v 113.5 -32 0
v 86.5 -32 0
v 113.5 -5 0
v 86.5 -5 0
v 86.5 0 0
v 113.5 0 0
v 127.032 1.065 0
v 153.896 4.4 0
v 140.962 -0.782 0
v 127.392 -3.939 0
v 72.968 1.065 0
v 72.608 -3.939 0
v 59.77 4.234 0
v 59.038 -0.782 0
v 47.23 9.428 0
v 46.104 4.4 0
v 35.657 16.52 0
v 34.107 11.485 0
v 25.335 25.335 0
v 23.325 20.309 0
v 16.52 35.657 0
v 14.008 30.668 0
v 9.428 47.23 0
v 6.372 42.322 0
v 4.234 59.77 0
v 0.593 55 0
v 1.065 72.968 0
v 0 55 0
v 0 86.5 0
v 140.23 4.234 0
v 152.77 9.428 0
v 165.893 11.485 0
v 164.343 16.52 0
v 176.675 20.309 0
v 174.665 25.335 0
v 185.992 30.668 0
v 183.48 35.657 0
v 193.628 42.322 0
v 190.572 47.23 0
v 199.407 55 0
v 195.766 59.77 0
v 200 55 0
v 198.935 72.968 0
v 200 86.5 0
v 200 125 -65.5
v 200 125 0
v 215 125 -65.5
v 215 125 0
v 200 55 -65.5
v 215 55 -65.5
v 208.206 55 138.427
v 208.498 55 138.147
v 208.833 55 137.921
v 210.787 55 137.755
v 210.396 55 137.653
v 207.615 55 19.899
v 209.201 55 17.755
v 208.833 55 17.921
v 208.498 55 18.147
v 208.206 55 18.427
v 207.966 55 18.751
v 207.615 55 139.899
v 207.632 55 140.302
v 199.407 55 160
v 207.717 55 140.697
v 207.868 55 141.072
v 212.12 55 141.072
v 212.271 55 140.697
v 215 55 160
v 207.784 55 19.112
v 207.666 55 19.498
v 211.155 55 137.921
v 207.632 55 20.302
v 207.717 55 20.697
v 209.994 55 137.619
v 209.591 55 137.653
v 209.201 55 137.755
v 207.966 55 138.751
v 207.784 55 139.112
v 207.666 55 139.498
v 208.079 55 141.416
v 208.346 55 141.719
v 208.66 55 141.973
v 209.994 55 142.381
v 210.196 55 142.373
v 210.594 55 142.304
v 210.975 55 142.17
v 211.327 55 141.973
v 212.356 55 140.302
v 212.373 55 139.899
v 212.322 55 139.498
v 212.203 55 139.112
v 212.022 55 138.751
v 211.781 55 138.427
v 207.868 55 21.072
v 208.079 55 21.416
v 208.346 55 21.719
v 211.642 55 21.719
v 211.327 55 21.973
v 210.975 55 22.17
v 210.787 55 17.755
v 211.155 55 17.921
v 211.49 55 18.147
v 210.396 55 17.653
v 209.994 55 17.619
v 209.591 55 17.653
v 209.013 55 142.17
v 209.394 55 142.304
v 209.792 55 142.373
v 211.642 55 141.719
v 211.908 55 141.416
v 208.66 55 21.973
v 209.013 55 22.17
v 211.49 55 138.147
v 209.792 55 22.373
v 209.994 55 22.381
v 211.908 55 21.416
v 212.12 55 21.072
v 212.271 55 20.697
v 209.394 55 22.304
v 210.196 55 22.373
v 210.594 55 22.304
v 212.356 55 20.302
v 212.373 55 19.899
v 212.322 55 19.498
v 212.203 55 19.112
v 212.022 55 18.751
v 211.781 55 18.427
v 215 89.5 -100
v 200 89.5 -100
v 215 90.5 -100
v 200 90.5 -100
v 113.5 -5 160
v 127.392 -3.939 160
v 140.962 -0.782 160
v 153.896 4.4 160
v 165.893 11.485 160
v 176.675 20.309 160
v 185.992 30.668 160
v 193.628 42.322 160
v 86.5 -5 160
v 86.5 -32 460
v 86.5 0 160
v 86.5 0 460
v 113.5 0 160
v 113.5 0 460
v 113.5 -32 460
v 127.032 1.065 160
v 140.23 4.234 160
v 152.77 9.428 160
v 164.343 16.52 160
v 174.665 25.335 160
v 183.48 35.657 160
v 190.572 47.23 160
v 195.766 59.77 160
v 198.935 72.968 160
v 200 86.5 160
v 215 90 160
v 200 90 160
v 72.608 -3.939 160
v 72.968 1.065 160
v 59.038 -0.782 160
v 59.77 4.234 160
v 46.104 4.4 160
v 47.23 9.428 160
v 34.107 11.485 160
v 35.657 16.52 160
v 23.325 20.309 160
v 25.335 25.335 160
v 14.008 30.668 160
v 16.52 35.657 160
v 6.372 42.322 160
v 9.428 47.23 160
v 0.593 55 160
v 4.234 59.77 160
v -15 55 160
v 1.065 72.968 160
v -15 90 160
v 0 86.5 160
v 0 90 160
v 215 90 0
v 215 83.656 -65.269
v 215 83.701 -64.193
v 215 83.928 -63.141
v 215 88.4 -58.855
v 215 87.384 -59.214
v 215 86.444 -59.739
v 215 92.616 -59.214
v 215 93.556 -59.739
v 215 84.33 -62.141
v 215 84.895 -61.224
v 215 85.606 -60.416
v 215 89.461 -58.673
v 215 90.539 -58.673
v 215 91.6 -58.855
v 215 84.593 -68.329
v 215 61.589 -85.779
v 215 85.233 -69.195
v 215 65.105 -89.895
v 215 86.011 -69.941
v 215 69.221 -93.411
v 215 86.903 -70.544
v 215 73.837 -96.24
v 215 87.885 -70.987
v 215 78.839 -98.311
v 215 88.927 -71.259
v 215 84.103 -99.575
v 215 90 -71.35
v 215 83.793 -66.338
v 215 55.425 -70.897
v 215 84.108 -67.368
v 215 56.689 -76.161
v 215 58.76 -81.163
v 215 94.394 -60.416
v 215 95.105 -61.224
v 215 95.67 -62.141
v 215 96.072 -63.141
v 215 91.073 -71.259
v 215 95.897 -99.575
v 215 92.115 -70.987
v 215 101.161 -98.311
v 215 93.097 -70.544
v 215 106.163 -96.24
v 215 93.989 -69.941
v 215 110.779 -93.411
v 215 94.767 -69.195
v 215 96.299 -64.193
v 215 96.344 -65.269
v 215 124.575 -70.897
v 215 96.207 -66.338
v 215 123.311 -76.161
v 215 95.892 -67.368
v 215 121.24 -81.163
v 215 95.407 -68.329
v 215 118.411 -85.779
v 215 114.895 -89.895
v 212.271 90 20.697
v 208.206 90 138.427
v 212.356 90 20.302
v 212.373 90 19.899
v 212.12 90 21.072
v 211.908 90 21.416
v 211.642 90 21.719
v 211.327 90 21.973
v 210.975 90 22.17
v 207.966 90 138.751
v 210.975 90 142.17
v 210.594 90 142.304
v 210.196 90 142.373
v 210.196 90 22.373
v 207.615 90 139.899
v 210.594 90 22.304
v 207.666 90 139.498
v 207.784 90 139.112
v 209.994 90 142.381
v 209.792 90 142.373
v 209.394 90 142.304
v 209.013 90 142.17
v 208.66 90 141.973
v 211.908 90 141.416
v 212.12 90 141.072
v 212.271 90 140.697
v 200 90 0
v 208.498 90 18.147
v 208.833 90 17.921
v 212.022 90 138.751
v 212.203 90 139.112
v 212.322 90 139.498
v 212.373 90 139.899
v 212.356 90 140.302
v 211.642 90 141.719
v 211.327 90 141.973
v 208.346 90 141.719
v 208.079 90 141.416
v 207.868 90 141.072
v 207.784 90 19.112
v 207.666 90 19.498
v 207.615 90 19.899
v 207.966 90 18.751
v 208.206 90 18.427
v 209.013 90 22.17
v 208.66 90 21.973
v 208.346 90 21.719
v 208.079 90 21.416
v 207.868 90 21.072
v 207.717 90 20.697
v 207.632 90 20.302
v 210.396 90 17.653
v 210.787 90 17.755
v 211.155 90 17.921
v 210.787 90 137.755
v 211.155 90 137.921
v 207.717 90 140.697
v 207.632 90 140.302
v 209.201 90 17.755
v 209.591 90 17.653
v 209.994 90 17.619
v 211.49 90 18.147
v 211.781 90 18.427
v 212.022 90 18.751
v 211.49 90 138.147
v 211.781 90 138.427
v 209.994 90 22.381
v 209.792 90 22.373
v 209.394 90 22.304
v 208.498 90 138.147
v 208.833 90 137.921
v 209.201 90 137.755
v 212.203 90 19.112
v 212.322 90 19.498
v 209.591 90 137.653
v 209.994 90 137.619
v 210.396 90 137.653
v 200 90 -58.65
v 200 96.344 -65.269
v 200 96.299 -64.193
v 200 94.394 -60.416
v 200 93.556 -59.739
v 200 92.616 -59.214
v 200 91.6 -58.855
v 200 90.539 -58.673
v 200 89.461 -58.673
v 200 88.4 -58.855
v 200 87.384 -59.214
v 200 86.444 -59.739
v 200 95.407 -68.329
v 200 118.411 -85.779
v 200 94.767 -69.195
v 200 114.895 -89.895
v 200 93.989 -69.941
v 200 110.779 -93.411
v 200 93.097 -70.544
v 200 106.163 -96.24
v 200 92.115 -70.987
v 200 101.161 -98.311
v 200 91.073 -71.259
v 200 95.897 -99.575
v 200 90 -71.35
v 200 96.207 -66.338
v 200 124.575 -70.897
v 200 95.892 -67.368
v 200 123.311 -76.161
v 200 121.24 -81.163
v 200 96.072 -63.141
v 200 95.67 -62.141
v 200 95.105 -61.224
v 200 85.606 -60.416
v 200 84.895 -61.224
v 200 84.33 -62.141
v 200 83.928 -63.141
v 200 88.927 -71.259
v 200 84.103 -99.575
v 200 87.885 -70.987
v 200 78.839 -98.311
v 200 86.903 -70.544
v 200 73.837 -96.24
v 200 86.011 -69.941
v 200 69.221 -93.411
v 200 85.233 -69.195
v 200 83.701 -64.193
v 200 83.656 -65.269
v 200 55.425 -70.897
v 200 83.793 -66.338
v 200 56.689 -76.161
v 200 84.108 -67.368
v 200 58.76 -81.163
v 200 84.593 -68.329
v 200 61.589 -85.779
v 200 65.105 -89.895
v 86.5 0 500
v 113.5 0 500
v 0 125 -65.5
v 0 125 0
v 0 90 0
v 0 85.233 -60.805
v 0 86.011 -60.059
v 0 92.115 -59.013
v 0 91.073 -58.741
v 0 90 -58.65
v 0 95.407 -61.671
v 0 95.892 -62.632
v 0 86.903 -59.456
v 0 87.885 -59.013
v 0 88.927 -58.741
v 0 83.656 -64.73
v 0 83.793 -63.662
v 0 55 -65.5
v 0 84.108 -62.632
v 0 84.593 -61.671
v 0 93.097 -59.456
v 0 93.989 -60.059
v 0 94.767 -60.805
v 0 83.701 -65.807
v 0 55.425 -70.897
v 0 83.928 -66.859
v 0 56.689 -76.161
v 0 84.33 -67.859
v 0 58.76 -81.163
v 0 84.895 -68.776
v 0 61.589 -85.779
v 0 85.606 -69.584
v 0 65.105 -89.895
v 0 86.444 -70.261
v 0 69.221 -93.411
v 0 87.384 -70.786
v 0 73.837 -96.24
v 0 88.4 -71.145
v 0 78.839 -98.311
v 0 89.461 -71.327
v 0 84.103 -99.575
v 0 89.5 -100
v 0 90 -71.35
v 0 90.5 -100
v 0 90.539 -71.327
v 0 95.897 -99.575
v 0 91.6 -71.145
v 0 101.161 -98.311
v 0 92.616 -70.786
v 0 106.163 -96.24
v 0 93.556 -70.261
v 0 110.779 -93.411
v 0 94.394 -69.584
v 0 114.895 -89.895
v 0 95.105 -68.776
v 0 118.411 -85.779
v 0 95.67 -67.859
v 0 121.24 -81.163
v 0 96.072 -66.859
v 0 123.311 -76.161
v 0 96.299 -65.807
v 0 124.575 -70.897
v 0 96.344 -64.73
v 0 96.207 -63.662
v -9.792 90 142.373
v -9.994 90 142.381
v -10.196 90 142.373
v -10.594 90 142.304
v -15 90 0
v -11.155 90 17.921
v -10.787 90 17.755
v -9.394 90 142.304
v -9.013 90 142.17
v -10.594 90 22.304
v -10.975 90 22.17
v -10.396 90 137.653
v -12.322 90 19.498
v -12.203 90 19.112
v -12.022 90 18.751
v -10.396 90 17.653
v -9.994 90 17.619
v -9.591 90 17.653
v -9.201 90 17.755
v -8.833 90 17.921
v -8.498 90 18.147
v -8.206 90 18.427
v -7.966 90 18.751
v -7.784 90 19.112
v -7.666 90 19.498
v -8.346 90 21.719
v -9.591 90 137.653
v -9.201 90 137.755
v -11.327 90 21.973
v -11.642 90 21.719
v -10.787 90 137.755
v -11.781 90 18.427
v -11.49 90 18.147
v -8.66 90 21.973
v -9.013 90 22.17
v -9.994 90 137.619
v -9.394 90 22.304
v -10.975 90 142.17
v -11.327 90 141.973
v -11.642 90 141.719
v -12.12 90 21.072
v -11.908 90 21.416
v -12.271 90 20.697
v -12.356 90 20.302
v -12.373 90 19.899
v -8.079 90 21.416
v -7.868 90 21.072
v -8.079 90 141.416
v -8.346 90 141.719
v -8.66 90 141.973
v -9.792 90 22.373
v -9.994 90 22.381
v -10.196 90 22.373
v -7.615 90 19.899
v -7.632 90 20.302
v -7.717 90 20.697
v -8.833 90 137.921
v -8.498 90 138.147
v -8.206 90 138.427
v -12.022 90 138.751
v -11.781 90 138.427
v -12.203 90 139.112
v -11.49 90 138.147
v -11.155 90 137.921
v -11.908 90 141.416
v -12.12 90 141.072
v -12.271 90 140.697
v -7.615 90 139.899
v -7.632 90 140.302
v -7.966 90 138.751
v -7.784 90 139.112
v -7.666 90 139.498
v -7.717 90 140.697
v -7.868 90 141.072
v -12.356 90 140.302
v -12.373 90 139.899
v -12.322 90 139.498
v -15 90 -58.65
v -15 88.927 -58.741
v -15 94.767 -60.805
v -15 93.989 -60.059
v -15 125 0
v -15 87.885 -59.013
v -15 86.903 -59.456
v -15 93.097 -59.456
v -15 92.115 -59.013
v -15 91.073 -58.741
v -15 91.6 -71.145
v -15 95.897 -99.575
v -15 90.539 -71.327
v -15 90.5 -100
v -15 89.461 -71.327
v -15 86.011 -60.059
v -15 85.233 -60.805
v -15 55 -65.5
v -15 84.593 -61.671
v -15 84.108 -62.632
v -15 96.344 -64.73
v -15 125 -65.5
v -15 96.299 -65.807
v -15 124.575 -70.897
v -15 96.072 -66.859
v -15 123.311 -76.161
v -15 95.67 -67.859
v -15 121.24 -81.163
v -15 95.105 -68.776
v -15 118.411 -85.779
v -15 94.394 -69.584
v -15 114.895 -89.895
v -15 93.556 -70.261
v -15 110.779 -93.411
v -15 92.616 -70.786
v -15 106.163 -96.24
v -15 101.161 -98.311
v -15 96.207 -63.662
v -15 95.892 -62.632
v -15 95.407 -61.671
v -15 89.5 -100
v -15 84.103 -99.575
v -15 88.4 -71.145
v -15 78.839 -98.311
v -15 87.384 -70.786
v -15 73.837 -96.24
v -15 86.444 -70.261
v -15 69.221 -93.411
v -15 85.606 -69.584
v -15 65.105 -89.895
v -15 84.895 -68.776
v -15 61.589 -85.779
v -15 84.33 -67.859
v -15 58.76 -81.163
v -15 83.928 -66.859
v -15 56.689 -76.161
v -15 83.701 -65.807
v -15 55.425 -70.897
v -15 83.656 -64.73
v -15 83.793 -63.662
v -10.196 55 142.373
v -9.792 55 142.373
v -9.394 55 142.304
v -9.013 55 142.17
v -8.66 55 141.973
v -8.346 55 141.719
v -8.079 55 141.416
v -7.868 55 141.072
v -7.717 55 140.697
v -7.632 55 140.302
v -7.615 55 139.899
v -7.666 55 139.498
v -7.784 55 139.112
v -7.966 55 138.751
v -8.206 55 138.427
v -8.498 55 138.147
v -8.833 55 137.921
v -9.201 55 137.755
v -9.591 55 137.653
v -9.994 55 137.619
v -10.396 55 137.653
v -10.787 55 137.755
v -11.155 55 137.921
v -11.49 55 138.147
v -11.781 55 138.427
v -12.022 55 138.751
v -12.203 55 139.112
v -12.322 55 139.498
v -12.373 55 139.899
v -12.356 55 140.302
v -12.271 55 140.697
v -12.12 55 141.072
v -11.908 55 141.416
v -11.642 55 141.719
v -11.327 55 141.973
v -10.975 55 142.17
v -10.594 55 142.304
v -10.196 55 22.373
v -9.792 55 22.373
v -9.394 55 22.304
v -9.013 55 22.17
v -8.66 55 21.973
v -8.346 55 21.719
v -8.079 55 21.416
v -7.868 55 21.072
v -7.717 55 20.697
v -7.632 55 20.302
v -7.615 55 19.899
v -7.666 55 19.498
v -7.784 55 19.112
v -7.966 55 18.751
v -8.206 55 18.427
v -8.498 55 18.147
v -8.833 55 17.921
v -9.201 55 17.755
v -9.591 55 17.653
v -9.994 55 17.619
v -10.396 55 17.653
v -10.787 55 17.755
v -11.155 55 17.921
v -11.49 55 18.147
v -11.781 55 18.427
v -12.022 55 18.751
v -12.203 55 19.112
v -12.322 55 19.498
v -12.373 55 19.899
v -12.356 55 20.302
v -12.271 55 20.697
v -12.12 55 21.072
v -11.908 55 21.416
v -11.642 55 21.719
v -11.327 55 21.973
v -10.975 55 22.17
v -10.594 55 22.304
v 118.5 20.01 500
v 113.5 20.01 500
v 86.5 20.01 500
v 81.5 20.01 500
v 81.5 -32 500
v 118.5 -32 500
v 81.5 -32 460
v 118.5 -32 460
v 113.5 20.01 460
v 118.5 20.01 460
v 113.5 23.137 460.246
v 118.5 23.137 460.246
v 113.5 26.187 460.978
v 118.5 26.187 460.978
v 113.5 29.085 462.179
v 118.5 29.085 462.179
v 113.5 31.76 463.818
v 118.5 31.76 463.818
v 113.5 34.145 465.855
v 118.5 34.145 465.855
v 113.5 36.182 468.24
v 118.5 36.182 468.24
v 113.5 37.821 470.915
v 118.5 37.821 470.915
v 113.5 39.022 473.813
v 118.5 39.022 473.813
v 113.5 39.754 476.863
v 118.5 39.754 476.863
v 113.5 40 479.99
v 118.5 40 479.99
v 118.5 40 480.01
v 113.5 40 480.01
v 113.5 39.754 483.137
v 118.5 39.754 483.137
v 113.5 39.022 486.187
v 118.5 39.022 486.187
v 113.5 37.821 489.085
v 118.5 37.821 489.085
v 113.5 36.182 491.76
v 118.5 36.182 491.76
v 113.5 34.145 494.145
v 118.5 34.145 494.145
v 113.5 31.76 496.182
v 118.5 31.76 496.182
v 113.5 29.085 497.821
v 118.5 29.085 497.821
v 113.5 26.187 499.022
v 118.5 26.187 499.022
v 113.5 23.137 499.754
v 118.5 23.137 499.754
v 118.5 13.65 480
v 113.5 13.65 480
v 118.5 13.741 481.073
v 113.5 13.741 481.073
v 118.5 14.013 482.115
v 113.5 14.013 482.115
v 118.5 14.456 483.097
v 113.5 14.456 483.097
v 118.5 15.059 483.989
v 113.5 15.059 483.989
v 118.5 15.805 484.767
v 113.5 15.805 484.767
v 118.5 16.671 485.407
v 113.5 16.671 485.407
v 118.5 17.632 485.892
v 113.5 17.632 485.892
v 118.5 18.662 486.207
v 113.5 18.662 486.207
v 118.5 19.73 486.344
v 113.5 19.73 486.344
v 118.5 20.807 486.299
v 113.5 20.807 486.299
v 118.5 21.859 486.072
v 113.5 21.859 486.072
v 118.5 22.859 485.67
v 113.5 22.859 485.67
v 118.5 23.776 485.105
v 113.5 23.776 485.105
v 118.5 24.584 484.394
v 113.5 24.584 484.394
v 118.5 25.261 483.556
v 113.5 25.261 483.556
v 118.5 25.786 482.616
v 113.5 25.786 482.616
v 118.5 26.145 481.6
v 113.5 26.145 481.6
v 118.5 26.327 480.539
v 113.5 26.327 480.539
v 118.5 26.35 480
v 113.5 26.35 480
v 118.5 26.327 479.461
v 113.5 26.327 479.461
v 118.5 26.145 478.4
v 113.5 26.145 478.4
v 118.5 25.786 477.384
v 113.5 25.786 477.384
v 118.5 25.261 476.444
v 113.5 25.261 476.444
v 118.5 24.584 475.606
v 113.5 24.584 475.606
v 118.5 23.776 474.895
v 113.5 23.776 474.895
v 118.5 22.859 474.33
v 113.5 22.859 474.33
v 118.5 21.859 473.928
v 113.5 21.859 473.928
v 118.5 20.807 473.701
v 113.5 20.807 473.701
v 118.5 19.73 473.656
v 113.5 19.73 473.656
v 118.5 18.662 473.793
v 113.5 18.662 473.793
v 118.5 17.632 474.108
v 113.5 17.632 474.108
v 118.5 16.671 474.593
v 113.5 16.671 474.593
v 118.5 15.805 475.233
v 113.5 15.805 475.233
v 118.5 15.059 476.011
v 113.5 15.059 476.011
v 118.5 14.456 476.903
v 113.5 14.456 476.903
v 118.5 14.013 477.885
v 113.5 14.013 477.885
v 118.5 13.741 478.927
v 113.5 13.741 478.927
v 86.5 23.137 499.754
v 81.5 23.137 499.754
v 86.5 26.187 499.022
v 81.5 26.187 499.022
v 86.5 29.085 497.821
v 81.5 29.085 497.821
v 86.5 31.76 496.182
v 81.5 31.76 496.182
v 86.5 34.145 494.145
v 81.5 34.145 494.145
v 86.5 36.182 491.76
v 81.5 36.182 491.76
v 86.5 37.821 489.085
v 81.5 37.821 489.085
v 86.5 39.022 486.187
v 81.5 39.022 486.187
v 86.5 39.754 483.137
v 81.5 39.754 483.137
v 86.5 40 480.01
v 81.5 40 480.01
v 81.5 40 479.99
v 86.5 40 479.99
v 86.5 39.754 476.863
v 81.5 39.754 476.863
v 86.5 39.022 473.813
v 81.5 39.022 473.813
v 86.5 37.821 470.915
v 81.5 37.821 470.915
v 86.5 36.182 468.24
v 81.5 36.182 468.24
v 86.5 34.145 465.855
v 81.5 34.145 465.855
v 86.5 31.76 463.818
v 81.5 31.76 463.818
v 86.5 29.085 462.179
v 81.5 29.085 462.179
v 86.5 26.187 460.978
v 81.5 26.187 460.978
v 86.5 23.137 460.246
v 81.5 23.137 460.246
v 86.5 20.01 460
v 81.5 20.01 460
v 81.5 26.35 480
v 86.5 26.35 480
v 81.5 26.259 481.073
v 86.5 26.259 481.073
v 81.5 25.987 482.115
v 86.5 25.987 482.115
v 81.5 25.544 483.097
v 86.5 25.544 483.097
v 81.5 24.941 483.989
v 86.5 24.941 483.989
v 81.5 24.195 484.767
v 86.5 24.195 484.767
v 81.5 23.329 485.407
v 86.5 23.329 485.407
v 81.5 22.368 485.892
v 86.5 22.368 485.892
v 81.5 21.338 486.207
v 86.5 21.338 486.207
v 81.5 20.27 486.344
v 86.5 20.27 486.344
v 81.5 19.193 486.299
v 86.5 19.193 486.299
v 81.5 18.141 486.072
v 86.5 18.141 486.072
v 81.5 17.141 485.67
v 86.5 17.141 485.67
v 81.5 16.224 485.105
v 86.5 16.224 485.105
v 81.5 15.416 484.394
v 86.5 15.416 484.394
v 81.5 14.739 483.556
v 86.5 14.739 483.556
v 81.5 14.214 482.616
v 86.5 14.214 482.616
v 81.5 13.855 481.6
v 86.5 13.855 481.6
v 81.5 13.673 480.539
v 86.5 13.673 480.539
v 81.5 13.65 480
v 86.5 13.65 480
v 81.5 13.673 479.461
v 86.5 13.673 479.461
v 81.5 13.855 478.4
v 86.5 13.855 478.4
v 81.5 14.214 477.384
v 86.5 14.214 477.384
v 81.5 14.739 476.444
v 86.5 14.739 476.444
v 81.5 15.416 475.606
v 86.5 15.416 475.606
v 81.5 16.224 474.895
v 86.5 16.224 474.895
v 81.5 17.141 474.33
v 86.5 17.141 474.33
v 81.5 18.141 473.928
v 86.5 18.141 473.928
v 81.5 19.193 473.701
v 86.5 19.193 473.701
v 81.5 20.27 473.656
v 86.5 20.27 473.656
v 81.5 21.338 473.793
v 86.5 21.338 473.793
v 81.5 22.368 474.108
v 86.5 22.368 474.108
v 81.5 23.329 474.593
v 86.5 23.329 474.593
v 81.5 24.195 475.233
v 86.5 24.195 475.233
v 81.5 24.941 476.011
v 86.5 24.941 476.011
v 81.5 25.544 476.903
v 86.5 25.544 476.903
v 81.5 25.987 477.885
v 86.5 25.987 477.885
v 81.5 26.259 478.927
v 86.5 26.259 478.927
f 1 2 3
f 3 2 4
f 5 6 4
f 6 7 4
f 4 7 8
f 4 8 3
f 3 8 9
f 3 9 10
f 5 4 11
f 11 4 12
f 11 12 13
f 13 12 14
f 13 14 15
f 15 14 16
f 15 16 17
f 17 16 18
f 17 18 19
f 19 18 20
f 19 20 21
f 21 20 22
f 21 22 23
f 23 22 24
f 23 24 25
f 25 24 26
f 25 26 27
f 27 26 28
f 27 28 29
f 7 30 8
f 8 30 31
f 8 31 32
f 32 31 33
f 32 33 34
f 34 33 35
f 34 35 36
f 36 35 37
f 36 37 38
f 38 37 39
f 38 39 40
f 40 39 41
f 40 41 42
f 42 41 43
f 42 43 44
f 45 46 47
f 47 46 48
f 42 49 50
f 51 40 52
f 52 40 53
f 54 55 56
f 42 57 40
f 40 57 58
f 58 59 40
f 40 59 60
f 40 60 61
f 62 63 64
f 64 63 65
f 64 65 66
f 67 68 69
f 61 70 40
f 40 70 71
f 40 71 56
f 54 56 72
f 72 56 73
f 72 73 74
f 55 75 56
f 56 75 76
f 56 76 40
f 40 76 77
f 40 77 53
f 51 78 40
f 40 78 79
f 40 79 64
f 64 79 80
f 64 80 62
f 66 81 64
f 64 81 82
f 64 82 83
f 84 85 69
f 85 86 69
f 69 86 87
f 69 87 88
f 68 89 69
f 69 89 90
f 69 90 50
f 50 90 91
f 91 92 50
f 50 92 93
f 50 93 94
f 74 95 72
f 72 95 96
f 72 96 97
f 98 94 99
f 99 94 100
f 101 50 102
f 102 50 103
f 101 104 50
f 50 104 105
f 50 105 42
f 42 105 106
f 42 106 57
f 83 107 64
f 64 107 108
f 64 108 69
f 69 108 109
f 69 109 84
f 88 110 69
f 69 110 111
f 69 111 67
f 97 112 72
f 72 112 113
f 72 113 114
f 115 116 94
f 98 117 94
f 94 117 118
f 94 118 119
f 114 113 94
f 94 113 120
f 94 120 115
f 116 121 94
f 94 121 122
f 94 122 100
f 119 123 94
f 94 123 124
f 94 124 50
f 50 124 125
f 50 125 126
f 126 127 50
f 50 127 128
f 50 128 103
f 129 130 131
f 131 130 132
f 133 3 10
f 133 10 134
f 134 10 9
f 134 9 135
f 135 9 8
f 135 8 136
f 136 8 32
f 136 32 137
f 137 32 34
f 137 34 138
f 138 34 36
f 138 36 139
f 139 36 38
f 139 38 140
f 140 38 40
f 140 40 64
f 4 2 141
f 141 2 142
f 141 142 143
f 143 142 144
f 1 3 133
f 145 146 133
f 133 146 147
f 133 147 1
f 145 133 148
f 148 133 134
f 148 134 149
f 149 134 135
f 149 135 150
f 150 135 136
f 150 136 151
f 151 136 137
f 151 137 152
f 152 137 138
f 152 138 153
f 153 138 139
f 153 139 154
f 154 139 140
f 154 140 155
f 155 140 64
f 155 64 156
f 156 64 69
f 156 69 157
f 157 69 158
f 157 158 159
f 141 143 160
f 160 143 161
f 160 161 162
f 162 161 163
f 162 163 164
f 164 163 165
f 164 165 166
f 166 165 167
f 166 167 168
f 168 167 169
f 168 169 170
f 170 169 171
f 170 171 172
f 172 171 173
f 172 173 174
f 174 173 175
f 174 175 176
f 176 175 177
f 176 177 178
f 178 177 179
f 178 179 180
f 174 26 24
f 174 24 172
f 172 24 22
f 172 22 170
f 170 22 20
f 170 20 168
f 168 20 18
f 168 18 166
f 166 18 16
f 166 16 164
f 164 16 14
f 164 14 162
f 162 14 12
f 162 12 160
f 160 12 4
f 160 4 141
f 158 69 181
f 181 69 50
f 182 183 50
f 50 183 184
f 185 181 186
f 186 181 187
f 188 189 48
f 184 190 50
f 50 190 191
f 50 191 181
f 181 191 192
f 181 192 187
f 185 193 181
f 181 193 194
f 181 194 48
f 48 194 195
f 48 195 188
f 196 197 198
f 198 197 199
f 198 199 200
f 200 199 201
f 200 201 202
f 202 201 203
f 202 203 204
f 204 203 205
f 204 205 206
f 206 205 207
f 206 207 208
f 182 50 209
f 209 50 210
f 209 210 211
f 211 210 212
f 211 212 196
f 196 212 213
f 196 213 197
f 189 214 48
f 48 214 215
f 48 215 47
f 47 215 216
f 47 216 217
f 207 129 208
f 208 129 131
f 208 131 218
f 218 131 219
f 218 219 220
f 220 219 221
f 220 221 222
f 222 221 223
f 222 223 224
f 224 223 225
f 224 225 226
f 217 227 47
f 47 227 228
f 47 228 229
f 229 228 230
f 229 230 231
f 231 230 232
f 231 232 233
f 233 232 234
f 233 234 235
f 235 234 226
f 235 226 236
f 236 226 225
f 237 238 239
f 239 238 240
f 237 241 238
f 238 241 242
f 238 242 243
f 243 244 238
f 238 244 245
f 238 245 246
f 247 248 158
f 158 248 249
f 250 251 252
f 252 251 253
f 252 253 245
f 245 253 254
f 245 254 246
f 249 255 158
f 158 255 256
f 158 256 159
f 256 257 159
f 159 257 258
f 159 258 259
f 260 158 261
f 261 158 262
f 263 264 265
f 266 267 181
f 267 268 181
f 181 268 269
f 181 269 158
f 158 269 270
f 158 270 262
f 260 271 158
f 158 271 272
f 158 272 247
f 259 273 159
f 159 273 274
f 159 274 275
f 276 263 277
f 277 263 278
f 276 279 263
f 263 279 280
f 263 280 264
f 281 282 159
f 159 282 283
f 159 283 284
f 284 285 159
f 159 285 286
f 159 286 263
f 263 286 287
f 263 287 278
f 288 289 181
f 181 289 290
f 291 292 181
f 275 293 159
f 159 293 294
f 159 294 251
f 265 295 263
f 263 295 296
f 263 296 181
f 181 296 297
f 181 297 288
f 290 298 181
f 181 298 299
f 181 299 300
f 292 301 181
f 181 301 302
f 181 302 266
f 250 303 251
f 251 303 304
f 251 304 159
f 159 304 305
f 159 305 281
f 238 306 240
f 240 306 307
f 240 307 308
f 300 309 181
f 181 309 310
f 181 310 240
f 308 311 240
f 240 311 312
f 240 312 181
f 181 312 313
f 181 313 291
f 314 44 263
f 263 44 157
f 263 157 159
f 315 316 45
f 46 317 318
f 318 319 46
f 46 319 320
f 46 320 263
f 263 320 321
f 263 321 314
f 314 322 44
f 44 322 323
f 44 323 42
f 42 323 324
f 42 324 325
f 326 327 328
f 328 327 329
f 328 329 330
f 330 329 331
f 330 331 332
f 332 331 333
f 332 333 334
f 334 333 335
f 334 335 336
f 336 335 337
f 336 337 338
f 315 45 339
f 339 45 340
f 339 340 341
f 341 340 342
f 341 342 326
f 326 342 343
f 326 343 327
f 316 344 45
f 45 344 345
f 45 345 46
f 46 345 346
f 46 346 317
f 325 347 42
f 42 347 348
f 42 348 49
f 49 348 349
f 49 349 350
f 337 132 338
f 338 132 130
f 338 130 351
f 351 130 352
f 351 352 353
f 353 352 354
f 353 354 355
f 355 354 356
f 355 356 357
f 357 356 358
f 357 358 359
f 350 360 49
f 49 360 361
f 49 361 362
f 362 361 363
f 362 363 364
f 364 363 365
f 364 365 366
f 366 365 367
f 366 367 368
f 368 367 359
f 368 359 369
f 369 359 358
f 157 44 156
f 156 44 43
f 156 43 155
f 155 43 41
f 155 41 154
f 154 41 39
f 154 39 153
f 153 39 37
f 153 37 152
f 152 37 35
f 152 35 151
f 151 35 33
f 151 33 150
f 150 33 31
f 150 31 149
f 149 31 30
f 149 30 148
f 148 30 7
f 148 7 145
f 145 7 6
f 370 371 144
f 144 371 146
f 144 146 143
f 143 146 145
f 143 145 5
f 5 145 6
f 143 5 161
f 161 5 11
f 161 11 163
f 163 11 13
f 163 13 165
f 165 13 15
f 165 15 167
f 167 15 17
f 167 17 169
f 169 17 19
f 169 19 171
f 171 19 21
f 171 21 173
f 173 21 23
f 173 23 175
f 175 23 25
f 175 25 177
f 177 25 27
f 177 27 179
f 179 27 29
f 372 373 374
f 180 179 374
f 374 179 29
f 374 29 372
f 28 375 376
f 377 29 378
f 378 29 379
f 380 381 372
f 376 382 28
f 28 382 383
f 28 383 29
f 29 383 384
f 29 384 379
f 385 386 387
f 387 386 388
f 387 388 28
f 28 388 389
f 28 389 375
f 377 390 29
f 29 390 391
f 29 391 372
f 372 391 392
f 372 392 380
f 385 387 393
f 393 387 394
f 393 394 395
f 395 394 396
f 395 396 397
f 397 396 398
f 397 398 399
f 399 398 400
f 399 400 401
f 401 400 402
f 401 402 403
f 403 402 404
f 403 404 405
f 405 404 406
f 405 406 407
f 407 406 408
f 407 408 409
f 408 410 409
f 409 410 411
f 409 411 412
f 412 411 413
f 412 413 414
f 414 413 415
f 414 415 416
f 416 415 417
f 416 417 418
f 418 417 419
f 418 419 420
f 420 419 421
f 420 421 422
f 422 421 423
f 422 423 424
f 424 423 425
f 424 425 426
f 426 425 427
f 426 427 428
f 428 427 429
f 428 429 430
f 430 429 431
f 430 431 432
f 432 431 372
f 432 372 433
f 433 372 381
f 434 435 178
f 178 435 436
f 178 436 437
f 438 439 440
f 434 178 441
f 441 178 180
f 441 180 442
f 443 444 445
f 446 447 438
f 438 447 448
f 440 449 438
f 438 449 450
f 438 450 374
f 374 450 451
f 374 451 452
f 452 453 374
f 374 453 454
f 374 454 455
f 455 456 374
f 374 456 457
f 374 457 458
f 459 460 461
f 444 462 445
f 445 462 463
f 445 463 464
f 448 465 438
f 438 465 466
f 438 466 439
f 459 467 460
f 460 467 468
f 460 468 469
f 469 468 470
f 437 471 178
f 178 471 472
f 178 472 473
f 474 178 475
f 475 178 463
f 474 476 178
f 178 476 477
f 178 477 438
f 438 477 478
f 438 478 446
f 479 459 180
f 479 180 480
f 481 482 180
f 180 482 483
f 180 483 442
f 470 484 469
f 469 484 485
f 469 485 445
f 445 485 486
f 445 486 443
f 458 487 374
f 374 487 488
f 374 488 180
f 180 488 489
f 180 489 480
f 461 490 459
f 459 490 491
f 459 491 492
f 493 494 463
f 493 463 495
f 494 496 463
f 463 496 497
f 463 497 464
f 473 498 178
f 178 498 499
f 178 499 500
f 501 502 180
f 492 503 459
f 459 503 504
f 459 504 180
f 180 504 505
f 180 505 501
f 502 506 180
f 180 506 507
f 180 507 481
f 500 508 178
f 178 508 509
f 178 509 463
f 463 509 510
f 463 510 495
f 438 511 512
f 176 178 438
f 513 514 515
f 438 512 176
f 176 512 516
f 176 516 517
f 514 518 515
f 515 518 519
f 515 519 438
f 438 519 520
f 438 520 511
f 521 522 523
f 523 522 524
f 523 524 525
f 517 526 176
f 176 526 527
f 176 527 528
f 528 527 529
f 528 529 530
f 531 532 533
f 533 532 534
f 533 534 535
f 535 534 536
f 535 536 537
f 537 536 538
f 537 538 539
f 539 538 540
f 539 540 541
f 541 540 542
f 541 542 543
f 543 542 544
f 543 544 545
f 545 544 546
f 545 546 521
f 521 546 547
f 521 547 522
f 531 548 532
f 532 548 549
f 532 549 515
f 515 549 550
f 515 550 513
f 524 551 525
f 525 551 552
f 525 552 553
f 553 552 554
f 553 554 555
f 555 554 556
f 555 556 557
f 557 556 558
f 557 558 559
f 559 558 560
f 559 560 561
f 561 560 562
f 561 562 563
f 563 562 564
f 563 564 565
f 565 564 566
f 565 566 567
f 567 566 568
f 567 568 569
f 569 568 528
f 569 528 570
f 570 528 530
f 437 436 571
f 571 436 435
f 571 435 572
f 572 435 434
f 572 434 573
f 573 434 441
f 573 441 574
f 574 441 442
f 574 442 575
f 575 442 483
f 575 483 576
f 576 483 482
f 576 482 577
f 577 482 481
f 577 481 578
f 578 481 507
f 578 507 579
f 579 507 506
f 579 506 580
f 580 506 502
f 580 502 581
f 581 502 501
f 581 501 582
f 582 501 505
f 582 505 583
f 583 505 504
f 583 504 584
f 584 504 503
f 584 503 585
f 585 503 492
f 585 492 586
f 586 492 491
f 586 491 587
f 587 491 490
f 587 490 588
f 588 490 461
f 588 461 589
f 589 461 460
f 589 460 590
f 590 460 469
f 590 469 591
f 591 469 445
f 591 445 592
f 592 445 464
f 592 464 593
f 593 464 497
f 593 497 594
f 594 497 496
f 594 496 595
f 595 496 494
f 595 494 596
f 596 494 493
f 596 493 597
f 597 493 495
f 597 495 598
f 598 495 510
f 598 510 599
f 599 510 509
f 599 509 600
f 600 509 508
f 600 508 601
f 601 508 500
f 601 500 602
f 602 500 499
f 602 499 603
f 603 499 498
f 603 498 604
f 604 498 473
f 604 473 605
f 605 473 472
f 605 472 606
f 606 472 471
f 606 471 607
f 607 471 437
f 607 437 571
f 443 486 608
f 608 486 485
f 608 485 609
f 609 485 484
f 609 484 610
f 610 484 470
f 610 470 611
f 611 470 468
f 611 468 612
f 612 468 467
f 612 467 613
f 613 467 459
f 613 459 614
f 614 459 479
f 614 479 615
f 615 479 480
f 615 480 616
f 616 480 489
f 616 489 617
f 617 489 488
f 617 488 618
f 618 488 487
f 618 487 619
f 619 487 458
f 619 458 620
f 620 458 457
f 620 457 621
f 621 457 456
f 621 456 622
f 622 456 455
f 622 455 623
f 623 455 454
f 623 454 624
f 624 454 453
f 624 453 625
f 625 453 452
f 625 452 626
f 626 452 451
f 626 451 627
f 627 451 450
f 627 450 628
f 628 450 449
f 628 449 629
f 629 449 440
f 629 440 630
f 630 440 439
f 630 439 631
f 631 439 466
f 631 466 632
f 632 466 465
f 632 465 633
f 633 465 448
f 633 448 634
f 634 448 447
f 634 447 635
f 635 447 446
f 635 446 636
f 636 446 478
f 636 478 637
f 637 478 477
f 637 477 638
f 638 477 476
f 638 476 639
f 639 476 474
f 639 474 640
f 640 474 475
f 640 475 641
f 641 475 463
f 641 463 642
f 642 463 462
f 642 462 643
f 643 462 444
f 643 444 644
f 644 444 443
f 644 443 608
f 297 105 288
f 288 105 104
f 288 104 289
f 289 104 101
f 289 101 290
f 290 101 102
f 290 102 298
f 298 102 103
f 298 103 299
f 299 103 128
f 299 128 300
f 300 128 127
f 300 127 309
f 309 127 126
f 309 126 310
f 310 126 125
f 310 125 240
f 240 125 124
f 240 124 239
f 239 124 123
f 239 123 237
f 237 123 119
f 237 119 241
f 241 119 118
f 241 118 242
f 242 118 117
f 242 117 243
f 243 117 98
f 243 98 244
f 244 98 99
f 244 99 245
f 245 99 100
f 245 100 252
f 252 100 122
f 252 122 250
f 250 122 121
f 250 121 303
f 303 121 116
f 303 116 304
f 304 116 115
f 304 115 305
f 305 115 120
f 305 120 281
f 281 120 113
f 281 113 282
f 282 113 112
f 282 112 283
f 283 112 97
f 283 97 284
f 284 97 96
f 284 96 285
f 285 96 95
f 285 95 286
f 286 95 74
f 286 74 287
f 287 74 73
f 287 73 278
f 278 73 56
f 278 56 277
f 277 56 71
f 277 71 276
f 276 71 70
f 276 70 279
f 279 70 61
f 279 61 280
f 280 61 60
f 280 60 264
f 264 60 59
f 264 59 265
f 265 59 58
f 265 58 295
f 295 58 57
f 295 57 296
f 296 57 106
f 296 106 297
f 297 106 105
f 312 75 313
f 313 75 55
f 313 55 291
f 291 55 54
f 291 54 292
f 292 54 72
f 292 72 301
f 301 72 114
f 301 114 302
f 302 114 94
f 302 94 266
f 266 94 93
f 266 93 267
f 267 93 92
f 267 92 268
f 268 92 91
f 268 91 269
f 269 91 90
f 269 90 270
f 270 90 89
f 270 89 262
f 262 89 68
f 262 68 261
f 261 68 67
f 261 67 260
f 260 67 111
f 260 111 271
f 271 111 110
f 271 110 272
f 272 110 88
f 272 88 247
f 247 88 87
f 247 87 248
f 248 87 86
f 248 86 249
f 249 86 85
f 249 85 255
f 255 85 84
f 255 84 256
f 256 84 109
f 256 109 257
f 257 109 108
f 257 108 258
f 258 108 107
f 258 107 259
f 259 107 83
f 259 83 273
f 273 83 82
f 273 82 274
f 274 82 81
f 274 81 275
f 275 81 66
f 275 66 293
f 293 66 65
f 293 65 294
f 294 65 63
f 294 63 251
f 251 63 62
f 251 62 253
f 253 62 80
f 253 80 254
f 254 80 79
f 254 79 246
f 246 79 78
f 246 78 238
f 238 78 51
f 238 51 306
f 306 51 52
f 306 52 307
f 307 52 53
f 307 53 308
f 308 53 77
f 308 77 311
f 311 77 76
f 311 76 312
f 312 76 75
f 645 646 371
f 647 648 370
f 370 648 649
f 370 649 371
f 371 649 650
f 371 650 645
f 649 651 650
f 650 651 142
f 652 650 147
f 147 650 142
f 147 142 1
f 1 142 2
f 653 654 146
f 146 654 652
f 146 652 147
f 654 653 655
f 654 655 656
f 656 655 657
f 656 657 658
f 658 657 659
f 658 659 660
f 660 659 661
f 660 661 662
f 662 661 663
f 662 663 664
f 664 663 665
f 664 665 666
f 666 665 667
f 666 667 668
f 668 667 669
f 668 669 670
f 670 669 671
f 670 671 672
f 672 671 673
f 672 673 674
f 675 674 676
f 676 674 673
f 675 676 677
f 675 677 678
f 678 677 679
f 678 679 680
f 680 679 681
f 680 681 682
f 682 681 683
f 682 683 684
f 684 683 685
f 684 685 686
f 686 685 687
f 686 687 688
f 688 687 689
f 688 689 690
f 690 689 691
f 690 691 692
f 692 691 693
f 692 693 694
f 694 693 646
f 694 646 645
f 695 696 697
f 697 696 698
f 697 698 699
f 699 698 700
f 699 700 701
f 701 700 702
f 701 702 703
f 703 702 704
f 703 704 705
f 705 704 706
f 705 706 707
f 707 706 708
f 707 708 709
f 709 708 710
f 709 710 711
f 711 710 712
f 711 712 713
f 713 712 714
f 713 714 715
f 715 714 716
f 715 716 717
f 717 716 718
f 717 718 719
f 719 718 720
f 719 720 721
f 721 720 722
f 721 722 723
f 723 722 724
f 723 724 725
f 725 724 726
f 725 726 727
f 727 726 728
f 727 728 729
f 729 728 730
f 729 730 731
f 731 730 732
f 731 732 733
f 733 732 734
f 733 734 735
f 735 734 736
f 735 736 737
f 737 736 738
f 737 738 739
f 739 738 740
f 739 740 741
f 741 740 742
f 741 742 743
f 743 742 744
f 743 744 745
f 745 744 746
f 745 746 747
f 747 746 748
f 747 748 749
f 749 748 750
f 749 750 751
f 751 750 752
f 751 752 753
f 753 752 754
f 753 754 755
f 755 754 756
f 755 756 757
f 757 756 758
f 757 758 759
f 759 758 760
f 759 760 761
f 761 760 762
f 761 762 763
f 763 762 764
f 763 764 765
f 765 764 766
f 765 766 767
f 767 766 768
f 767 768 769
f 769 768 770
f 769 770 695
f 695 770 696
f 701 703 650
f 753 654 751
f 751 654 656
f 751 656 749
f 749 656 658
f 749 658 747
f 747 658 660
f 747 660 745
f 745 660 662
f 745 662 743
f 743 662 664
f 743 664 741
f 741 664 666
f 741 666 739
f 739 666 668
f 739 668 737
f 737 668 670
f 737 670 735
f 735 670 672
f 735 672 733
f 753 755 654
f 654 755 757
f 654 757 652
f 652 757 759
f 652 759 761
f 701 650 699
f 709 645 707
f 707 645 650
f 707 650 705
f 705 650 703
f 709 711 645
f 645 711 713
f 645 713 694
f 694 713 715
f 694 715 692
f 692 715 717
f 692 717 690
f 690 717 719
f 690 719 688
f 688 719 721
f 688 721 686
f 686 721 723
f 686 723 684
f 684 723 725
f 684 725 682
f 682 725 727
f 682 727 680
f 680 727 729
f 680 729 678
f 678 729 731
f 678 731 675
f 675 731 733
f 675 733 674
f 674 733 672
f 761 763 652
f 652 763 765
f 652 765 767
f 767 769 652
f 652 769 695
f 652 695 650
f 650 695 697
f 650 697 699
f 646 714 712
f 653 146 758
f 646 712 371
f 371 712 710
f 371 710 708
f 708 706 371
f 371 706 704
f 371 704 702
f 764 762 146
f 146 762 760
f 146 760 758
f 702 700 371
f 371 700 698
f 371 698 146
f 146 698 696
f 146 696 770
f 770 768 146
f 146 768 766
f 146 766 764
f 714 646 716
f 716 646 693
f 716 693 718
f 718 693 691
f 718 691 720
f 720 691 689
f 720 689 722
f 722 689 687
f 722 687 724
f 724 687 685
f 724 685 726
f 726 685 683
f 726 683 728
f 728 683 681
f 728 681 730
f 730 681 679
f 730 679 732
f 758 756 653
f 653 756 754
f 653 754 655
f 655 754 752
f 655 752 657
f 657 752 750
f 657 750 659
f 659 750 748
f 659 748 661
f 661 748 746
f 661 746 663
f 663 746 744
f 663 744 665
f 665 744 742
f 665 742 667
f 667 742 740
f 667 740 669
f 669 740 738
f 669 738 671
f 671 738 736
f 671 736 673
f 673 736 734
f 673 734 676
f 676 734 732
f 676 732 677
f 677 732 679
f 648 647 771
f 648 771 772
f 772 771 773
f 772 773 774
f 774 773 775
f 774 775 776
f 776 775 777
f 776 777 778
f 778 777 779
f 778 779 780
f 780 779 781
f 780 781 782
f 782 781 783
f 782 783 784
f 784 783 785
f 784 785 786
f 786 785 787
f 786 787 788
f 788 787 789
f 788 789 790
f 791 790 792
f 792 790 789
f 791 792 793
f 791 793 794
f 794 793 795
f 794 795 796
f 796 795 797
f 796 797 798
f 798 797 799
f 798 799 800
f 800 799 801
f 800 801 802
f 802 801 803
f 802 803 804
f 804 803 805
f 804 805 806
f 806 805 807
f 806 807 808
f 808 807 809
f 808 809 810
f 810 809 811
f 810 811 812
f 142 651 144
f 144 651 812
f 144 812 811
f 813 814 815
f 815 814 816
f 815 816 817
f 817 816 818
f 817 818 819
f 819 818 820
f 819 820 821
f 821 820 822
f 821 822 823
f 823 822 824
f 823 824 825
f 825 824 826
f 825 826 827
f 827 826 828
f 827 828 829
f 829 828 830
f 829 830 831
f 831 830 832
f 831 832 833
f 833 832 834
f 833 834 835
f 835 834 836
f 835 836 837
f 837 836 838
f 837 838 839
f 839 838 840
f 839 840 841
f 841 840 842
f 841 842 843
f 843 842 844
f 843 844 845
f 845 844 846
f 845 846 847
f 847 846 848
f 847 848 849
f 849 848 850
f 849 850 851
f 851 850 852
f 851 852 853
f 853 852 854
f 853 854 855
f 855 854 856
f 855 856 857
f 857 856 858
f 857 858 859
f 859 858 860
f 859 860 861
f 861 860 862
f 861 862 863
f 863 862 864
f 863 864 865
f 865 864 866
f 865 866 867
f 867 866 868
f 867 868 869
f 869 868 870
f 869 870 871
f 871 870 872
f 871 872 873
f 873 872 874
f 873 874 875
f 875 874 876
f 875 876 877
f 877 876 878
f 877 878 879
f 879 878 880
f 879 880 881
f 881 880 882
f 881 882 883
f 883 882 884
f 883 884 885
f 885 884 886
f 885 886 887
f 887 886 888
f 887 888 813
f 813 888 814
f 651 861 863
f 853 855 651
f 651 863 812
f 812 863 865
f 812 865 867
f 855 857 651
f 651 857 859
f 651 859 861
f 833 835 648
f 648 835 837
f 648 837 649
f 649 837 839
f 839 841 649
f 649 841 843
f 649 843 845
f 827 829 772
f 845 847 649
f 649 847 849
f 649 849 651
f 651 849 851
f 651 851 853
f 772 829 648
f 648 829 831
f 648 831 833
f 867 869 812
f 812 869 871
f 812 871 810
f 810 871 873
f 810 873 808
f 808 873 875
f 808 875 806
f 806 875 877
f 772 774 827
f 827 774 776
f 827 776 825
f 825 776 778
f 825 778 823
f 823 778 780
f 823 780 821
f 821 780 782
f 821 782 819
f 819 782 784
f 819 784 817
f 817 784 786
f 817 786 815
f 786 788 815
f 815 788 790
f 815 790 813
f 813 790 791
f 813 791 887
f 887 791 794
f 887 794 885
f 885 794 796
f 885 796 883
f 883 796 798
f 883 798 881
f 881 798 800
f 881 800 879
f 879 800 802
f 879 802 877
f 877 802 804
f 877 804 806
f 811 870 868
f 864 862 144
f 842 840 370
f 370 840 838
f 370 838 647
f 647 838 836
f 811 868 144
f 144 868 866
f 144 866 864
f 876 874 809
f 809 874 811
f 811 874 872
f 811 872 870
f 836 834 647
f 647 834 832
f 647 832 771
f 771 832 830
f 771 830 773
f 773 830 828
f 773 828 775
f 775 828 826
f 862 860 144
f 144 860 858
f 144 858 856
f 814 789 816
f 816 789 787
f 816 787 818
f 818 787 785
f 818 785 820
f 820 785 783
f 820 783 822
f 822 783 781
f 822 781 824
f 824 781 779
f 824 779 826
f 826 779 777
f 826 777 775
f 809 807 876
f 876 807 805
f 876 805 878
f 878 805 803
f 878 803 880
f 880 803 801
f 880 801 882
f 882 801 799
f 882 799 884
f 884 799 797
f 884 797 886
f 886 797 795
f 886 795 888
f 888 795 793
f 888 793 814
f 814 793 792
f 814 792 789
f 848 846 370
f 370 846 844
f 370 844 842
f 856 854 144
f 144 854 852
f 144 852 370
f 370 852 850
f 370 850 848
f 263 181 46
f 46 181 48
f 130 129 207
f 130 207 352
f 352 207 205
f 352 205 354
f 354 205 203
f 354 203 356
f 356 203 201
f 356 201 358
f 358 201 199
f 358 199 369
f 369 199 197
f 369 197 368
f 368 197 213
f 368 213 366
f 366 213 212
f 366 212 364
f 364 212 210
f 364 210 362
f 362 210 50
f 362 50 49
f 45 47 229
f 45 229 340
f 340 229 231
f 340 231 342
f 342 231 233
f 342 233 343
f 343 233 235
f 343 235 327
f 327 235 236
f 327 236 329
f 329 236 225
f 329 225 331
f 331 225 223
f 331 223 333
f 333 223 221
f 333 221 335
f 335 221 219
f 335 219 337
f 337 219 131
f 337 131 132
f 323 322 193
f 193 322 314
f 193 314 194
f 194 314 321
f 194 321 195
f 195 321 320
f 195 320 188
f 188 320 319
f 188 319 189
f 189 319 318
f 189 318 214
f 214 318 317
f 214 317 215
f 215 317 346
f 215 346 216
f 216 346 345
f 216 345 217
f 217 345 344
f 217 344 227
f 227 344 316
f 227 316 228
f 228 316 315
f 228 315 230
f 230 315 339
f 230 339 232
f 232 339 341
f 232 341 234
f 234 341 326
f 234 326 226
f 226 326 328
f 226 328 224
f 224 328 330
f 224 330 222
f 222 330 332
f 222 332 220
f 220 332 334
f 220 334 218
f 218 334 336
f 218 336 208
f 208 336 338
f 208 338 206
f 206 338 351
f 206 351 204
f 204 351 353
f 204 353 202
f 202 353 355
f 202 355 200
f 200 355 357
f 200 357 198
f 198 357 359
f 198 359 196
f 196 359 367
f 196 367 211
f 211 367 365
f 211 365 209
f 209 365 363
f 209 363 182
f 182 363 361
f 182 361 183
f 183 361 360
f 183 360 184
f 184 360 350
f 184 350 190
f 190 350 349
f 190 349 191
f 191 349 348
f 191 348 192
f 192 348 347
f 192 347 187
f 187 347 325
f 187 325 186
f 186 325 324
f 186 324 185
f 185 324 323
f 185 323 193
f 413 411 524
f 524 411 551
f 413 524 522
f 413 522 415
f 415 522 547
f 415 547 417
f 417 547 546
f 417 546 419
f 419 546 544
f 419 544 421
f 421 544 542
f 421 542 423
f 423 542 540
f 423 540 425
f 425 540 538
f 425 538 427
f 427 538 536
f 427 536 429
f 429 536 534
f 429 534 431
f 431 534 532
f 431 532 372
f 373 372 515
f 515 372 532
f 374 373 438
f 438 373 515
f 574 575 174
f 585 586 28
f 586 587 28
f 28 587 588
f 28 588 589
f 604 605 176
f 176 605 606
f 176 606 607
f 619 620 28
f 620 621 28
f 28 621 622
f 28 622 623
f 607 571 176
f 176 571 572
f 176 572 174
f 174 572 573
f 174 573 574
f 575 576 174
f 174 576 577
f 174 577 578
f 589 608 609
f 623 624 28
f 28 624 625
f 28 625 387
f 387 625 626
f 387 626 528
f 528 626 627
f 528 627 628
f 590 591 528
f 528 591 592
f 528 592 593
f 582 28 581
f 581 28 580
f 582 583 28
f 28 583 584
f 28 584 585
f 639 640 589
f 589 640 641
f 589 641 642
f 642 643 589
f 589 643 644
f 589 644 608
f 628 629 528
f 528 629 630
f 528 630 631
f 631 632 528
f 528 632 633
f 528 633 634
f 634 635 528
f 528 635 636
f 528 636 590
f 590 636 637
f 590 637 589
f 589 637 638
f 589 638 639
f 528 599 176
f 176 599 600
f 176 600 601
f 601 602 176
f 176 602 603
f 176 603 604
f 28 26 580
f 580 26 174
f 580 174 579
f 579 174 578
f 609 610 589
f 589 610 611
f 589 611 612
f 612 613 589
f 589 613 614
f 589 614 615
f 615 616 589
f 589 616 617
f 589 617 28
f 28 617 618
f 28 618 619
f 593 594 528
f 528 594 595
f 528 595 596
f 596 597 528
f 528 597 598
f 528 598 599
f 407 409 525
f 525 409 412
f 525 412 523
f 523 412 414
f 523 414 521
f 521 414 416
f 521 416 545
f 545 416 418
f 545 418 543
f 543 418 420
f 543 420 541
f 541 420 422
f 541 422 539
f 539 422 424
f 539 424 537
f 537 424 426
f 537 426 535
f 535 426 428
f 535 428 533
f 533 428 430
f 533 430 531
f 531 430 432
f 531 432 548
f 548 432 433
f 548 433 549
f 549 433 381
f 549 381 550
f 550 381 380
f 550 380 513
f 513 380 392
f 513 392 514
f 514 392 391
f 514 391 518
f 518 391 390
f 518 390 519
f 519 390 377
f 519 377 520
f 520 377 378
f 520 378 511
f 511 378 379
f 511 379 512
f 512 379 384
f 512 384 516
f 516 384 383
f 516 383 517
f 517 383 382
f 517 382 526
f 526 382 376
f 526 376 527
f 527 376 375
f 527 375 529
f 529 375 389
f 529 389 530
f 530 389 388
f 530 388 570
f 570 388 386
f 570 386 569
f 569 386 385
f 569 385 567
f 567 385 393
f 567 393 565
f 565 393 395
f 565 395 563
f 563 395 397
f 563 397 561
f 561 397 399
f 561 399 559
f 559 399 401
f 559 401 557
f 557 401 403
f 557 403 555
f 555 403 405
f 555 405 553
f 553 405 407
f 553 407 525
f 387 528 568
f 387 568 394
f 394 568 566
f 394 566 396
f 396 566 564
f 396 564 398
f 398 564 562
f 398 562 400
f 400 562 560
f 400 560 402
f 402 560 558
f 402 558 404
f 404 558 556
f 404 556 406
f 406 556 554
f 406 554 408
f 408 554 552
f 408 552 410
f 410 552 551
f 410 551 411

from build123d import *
from build123d.topology import SkipClean

# Parameters (mm, degrees)
BOSS_EXTRUDE1_DEPTH  = 160
SKETCH2_R            = 2.38125
CUT_EXTRUDE1_DEPTH   = 160
SKETCH3_W            = 27
SKETCH3_H            = 500
BOSS_EXTRUDE2_DEPTH  = 27
SKETCH4_W            = 27
SKETCH4_H            = 340
BOSS_EXTRUDE3_DEPTH  = 5
SKETCH5_W            = 40
SKETCH5_H            = 32
BOSS_EXTRUDE4_DEPTH  = 5
BOSS_EXTRUDE5_START  = 5
SKETCH6_W            = 40
SKETCH6_H            = 32
SKETCH6_R            = 6.35
BOSS_EXTRUDE5_DEPTH  = 5
SKETCH7_W            = 10.012295908
SKETCH7_H            = 30
SKETCH7_H_2          = 5
BOSS_EXTRUDE6_DEPTH  = 100
BOSS_EXTRUDE7_START  = -160
SKETCH8_W            = 10.012295908
SKETCH8_H            = 30
BOSS_EXTRUDE7_DEPTH  = 160
CUT_EXTRUDE2_DEPTH   = 100
BOSS_EXTRUDE8_START  = -10.012296
SKETCH10_R           = 6.35
BOSS_EXTRUDE8_DEPTH  = 10.012296
BOSS_EXTRUDE9_START  = -160
SKETCH11_W           = 10.012295908
SKETCH11_H           = 30
BOSS_EXTRUDE9_DEPTH  = 160
SKETCH12_R           = 6.35
BOSS_EXTRUDE10_DEPTH = 4.987704
SKETCH13_R           = 6.35
BOSS_EXTRUDE11_DEPTH = 4.987704
CUT_EXTRUDE3_START   = -200
SKETCH14_R           = 2.38125
CUT_EXTRUDE3_DEPTH   = 200


with BuildPart() as part:
    # Sketch1 → Boss-Extrude1 (new body)
    with BuildSketch(Plane.XY):
        with BuildLine():
            Line((113.5, 0), (86.5, 0))
            ThreePointArc((86.5, 0), (25.335263427, 25.335263427), (0, 86.5))
            Line((0, 86.5), (0, 90))
            Line((0, 90), (-15, 90))
            Line((-15, 90), (-15, 85))
            Line((-15, 85), (-4.987704092, 85))
            ThreePointArc((-4.987704092, 85), (22.332251091, 21.271555285), (86.5, -5))
            Line((86.5, -5), (113.5, -5))
            ThreePointArc((113.5, -5), (177.667748909, 21.271555285), (204.987704092, 85))
            Line((204.987704092, 85), (215, 85))
            Line((215, 85), (215, 90))
            Line((215, 90), (200, 90))
            Line((200, 90), (200, 86.5))
            ThreePointArc((200, 86.5), (174.664736573, 25.335263427), (113.5, 0))
        make_face()
    extrude(amount=BOSS_EXTRUDE1_DEPTH)

    # Sketch2 → Cut-Extrude1 (cut)
    with BuildSketch(Plane.XZ.offset(-85)):
        with BuildLine():
            ThreePointArc((-9.993852046, 142.38125), (-12.375102046, 140), (-9.993852046, 137.61875))
            Line((-9.993852046, 137.61875), (-9.993852046, 142.38125))
        make_face()
        with BuildLine():
            Line((-9.993852046, 142.38125), (-9.993852046, 137.61875))
            ThreePointArc((-9.993852046, 137.61875), (-8.310054023, 138.316201977), (-7.612602046, 140))
            ThreePointArc((-7.612602046, 140), (-8.310054023, 141.683798023), (-9.993852046, 142.38125))
        make_face()
        with Locations(Location((-9.993852046, 20, 0), (0, 0, 270))):
            Circle(SKETCH2_R)
        with Locations(Location((209.993852046, 20, 0), (0, 0, 270))):
            Circle(SKETCH2_R)
        with Locations(Location((209.993852046, 140, 0), (0, 0, 270))):
            Circle(SKETCH2_R)
    extrude(amount=-CUT_EXTRUDE1_DEPTH, mode=Mode.SUBTRACT)

    # Sketch3 → Boss-Extrude2 (add)
    with BuildSketch(Plane(origin=(0, -5, 0), x_dir=(-1, 0, 0), z_dir=(0, -1, 0))):
        with Locations((-100, -250)):
            Rectangle(SKETCH3_W, SKETCH3_H)
    extrude(amount=BOSS_EXTRUDE2_DEPTH)

    # Sketch4 → Boss-Extrude3 (add)
    with BuildSketch(Plane(origin=(0, -5, 0), x_dir=(1, 0, 0), z_dir=(0, 1, 0))):
        with Locations((100, -330)):
            Rectangle(SKETCH4_W, SKETCH4_H)
    extrude(amount=BOSS_EXTRUDE3_DEPTH)

    # Sketch5 → Boss-Extrude4 (add)
    with BuildSketch(Plane(origin=(113.5, 0, 0), x_dir=(0, 0, -1), z_dir=(1, 0, 0))):
        with BuildLine():
            Line((-500, 20.01), (-500, 0))
            Line((-500, 0), (-484.490128061, 15.509871939))
            ThreePointArc((-484.490128061, 15.509871939), (-484.490128061, 24.490128061), (-475.509871939, 24.490128061))
            Line((-475.509871939, 24.490128061), (-465.854935444, 34.145064556))
            ThreePointArc((-465.854935444, 34.145064556), (-472.340158187, 38.478351855), (-479.99, 40))
            Line((-479.99, 40), (-480.01, 40))
            ThreePointArc((-480.01, 40), (-494.145064556, 34.145064556), (-500, 20.01))
        make_face()
        with BuildLine():
            Line((-484.490128061, 15.509871939), (-500, 0))
            Line((-500, 0), (-460, 0))
            Line((-460, 0), (-460, 20.01))
            ThreePointArc((-460, 20.01), (-461.521648145, 27.659841813), (-465.854935444, 34.145064556))
            Line((-465.854935444, 34.145064556), (-475.509871939, 24.490128061))
            ThreePointArc((-475.509871939, 24.490128061), (-474.133364969, 22.430039796), (-473.65, 20))
            ThreePointArc((-473.65, 20), (-477.569960204, 14.133364969), (-484.490128061, 15.509871939))
        make_face()
        with Locations((-480, -16)):
            Rectangle(SKETCH5_W, SKETCH5_H)
    extrude(amount=BOSS_EXTRUDE4_DEPTH)

    # Sketch6 → Boss-Extrude5 (add)
    # profile 1 of 2: a face of its own
    with BuildSketch(Plane.ZY.offset(-86.5).offset(BOSS_EXTRUDE5_START)):
        with Locations((480, -16)):
            Rectangle(SKETCH6_W, SKETCH6_H)
    # profile 2 of 2: a face of its own
    with BuildSketch(Plane.ZY.offset(-86.5).offset(BOSS_EXTRUDE5_START)):
        with BuildLine():
            Line((460, 20.01), (460, 0))
            Line((460, 0), (500, 0))
            Line((500, 0), (500, 20.01))
            ThreePointArc((500, 20.01), (494.145064556, 34.145064556), (480.01, 40))
            Line((480.01, 40), (479.99, 40))
            ThreePointArc((479.99, 40), (465.854935444, 34.145064556), (460, 20.01))
        make_face()
        with Locations(Location((480, 20, 0), (0, 0, 90))):
            Circle(SKETCH6_R, mode=Mode.SUBTRACT)
    extrude(amount=-BOSS_EXTRUDE5_DEPTH)

    # Sketch7 → Boss-Extrude6 (add)
    with BuildSketch(Plane(origin=(0, 0, 0), x_dir=(-1, 0, 0), z_dir=(0, 0, -1))):
        with Locations((-209.993852046, 70)):
            Rectangle(SKETCH7_W, SKETCH7_H)
        with Locations((-209.993852046, 92.5)):
            Rectangle(SKETCH7_W, SKETCH7_H_2)
        with Locations((-209.993852046, 87.5)):
            Rectangle(SKETCH7_W, SKETCH7_H_2)
        with Locations((-209.993852046, 110)):
            Rectangle(SKETCH7_W, SKETCH7_H)
    extrude(amount=BOSS_EXTRUDE6_DEPTH)

    # Sketch8 → Boss-Extrude7 (add)
    with BuildSketch(Plane.XY.offset(160).offset(BOSS_EXTRUDE7_START)):
        with BuildLine():
            Line((199.40692638, 55), (204.987704092, 55))
            Line((204.987704092, 55), (204.987704092, 85))
            ThreePointArc((204.987704092, 85), (203.456732544, 69.765715732), (199.40692638, 55))
        make_face()
        with Locations((209.993852046, 70)):
            Rectangle(SKETCH8_W, SKETCH8_H)
    extrude(amount=BOSS_EXTRUDE7_DEPTH)

    # Sketch9 → Cut-Extrude2 (cut)
    with BuildSketch(Plane(origin=(215, 0, 0), x_dir=(0, 0, -1), z_dir=(1, 0, 0))):
        with BuildLine():
            ThreePointArc((71.35, 90), (67.430039796, 95.866635031), (60.509871939, 94.490128061))
            Line((60.509871939, 94.490128061), (69.490128061, 85.509871939))
            ThreePointArc((69.490128061, 85.509871939), (70.866635031, 87.569960204), (71.35, 90))
        make_face()
        with BuildLine():
            Line((69.490128061, 85.509871939), (60.509871939, 94.490128061))
            ThreePointArc((60.509871939, 94.490128061), (60.509871939, 85.509871939), (69.490128061, 85.509871939))
        make_face()
        with BuildLine():
            ThreePointArc((89.895183951, 65.104816049), (78.702578417, 57.626156128), (65.5, 55))
            Line((65.5, 55), (100, 55))
            Line((100, 55), (89.895183951, 65.104816049))
        make_face()
        with BuildLine():
            Line((100, 55), (100, 89.5))
            ThreePointArc((100, 89.5), (97.373843872, 76.297421583), (89.895183951, 65.104816049))
            Line((89.895183951, 65.104816049), (100, 55))
        make_face()
        with BuildLine():
            Line((100, 125), (65.5, 125))
            ThreePointArc((65.5, 125), (89.895183951, 114.895183951), (100, 90.5))
            Line((100, 90.5), (100, 125))
        make_face()
    extrude(amount=-CUT_EXTRUDE2_DEPTH, mode=Mode.SUBTRACT)

    # Sketch10 → Boss-Extrude8 (add)
    with BuildSketch(Plane.ZY.offset(15).offset(BOSS_EXTRUDE8_START)):
        with BuildLine():
            Line((0, 85), (0, 90))
            Line((0, 90), (0, 125))
            Line((0, 125), (-65.5, 125))
            ThreePointArc((-65.5, 125), (-89.895183951, 114.895183951), (-100, 90.5))
            Line((-100, 90.5), (-100, 89.5))
            ThreePointArc((-100, 89.5), (-89.895183951, 65.104816049), (-65.5, 55))
            Line((-65.5, 55), (0, 55))
            Line((0, 55), (0, 85))
        make_face()
        with Locations(Location((-65, 90, 0), (0, 0, 180))):
            Circle(SKETCH10_R, mode=Mode.SUBTRACT)
    extrude(amount=BOSS_EXTRUDE8_DEPTH)

    # Sketch11 → Boss-Extrude9 (add)
    with BuildSketch(Plane.XY.offset(160).offset(BOSS_EXTRUDE9_START)):
        with Locations((-9.993852046, 70)):
            Rectangle(SKETCH11_W, SKETCH11_H)
        with BuildLine():
            Line((-4.987704092, 85), (-4.987704092, 55))
            Line((-4.987704092, 55), (0.59307362, 55))
            ThreePointArc((0.59307362, 55), (-3.456732544, 69.765715732), (-4.987704092, 85))
        make_face()
    extrude(amount=BOSS_EXTRUDE9_DEPTH)

    # Sketch12 → Boss-Extrude10 (add)
    with BuildSketch(Plane(origin=(-4.987704092, 0, 0), x_dir=(0, 0, -1), z_dir=(1, 0, 0))):
        with BuildLine():
            Line((100, 89.5), (100, 90.5))
            ThreePointArc((100, 90.5), (89.895183951, 114.895183951), (65.5, 125))
            Line((65.5, 125), (0, 125))
            Line((0, 125), (0, 90))
            Line((0, 90), (0, 55))
            Line((0, 55), (65.5, 55))
            ThreePointArc((65.5, 55), (89.895183951, 65.104816049), (100, 89.5))
        make_face()
        with Locations((65, 90)):
            Circle(SKETCH12_R, mode=Mode.SUBTRACT)
    extrude(amount=BOSS_EXTRUDE10_DEPTH)

    # Sketch13 → Boss-Extrude11 (add)
    with SkipClean():  # the faces are left unmerged after this step: merging them gives an invalid solid
        with BuildSketch(Plane.ZY.offset(-204.987704092)):
            with BuildLine():
                Line((-100, 90.5), (-100, 89.5))
                ThreePointArc((-100, 89.5), (-89.895183951, 65.104816049), (-65.5, 55))
                Line((-65.5, 55), (0, 55))
                Line((0, 55), (0, 90))
                Line((0, 90), (0, 125))
                Line((0, 125), (-65.5, 125))
                ThreePointArc((-65.5, 125), (-89.895183951, 114.895183951), (-100, 90.5))
            make_face()
            with Locations(Location((-65, 90, 0), (0, 0, 180))):
                Circle(SKETCH13_R, mode=Mode.SUBTRACT)
        extrude(amount=BOSS_EXTRUDE11_DEPTH)

    # Sketch14 → Cut-Extrude3 (cut)
    with SkipClean():  # the faces are left unmerged after this step: merging them gives an invalid solid
        with BuildSketch(Plane(origin=(0, 85, 0), x_dir=(1, 0, 0), z_dir=(0, 1, 0)).offset(CUT_EXTRUDE3_START)):
            with Locations(Location((-9.993852046, -20, 0), (0, 0, 90))):
                Circle(SKETCH14_R)
            with Locations(Location((-9.993852046, -140, 0), (0, 0, 90))):
                Circle(SKETCH14_R)
            with Locations(Location((209.993852046, -140, 0), (0, 0, 270))):
                Circle(SKETCH14_R)
            with Locations(Location((209.993852046, -20, 0), (0, 0, 270))):
                Circle(SKETCH14_R)
        extrude(amount=CUT_EXTRUDE3_DEPTH, mode=Mode.SUBTRACT)


solid = part.part
